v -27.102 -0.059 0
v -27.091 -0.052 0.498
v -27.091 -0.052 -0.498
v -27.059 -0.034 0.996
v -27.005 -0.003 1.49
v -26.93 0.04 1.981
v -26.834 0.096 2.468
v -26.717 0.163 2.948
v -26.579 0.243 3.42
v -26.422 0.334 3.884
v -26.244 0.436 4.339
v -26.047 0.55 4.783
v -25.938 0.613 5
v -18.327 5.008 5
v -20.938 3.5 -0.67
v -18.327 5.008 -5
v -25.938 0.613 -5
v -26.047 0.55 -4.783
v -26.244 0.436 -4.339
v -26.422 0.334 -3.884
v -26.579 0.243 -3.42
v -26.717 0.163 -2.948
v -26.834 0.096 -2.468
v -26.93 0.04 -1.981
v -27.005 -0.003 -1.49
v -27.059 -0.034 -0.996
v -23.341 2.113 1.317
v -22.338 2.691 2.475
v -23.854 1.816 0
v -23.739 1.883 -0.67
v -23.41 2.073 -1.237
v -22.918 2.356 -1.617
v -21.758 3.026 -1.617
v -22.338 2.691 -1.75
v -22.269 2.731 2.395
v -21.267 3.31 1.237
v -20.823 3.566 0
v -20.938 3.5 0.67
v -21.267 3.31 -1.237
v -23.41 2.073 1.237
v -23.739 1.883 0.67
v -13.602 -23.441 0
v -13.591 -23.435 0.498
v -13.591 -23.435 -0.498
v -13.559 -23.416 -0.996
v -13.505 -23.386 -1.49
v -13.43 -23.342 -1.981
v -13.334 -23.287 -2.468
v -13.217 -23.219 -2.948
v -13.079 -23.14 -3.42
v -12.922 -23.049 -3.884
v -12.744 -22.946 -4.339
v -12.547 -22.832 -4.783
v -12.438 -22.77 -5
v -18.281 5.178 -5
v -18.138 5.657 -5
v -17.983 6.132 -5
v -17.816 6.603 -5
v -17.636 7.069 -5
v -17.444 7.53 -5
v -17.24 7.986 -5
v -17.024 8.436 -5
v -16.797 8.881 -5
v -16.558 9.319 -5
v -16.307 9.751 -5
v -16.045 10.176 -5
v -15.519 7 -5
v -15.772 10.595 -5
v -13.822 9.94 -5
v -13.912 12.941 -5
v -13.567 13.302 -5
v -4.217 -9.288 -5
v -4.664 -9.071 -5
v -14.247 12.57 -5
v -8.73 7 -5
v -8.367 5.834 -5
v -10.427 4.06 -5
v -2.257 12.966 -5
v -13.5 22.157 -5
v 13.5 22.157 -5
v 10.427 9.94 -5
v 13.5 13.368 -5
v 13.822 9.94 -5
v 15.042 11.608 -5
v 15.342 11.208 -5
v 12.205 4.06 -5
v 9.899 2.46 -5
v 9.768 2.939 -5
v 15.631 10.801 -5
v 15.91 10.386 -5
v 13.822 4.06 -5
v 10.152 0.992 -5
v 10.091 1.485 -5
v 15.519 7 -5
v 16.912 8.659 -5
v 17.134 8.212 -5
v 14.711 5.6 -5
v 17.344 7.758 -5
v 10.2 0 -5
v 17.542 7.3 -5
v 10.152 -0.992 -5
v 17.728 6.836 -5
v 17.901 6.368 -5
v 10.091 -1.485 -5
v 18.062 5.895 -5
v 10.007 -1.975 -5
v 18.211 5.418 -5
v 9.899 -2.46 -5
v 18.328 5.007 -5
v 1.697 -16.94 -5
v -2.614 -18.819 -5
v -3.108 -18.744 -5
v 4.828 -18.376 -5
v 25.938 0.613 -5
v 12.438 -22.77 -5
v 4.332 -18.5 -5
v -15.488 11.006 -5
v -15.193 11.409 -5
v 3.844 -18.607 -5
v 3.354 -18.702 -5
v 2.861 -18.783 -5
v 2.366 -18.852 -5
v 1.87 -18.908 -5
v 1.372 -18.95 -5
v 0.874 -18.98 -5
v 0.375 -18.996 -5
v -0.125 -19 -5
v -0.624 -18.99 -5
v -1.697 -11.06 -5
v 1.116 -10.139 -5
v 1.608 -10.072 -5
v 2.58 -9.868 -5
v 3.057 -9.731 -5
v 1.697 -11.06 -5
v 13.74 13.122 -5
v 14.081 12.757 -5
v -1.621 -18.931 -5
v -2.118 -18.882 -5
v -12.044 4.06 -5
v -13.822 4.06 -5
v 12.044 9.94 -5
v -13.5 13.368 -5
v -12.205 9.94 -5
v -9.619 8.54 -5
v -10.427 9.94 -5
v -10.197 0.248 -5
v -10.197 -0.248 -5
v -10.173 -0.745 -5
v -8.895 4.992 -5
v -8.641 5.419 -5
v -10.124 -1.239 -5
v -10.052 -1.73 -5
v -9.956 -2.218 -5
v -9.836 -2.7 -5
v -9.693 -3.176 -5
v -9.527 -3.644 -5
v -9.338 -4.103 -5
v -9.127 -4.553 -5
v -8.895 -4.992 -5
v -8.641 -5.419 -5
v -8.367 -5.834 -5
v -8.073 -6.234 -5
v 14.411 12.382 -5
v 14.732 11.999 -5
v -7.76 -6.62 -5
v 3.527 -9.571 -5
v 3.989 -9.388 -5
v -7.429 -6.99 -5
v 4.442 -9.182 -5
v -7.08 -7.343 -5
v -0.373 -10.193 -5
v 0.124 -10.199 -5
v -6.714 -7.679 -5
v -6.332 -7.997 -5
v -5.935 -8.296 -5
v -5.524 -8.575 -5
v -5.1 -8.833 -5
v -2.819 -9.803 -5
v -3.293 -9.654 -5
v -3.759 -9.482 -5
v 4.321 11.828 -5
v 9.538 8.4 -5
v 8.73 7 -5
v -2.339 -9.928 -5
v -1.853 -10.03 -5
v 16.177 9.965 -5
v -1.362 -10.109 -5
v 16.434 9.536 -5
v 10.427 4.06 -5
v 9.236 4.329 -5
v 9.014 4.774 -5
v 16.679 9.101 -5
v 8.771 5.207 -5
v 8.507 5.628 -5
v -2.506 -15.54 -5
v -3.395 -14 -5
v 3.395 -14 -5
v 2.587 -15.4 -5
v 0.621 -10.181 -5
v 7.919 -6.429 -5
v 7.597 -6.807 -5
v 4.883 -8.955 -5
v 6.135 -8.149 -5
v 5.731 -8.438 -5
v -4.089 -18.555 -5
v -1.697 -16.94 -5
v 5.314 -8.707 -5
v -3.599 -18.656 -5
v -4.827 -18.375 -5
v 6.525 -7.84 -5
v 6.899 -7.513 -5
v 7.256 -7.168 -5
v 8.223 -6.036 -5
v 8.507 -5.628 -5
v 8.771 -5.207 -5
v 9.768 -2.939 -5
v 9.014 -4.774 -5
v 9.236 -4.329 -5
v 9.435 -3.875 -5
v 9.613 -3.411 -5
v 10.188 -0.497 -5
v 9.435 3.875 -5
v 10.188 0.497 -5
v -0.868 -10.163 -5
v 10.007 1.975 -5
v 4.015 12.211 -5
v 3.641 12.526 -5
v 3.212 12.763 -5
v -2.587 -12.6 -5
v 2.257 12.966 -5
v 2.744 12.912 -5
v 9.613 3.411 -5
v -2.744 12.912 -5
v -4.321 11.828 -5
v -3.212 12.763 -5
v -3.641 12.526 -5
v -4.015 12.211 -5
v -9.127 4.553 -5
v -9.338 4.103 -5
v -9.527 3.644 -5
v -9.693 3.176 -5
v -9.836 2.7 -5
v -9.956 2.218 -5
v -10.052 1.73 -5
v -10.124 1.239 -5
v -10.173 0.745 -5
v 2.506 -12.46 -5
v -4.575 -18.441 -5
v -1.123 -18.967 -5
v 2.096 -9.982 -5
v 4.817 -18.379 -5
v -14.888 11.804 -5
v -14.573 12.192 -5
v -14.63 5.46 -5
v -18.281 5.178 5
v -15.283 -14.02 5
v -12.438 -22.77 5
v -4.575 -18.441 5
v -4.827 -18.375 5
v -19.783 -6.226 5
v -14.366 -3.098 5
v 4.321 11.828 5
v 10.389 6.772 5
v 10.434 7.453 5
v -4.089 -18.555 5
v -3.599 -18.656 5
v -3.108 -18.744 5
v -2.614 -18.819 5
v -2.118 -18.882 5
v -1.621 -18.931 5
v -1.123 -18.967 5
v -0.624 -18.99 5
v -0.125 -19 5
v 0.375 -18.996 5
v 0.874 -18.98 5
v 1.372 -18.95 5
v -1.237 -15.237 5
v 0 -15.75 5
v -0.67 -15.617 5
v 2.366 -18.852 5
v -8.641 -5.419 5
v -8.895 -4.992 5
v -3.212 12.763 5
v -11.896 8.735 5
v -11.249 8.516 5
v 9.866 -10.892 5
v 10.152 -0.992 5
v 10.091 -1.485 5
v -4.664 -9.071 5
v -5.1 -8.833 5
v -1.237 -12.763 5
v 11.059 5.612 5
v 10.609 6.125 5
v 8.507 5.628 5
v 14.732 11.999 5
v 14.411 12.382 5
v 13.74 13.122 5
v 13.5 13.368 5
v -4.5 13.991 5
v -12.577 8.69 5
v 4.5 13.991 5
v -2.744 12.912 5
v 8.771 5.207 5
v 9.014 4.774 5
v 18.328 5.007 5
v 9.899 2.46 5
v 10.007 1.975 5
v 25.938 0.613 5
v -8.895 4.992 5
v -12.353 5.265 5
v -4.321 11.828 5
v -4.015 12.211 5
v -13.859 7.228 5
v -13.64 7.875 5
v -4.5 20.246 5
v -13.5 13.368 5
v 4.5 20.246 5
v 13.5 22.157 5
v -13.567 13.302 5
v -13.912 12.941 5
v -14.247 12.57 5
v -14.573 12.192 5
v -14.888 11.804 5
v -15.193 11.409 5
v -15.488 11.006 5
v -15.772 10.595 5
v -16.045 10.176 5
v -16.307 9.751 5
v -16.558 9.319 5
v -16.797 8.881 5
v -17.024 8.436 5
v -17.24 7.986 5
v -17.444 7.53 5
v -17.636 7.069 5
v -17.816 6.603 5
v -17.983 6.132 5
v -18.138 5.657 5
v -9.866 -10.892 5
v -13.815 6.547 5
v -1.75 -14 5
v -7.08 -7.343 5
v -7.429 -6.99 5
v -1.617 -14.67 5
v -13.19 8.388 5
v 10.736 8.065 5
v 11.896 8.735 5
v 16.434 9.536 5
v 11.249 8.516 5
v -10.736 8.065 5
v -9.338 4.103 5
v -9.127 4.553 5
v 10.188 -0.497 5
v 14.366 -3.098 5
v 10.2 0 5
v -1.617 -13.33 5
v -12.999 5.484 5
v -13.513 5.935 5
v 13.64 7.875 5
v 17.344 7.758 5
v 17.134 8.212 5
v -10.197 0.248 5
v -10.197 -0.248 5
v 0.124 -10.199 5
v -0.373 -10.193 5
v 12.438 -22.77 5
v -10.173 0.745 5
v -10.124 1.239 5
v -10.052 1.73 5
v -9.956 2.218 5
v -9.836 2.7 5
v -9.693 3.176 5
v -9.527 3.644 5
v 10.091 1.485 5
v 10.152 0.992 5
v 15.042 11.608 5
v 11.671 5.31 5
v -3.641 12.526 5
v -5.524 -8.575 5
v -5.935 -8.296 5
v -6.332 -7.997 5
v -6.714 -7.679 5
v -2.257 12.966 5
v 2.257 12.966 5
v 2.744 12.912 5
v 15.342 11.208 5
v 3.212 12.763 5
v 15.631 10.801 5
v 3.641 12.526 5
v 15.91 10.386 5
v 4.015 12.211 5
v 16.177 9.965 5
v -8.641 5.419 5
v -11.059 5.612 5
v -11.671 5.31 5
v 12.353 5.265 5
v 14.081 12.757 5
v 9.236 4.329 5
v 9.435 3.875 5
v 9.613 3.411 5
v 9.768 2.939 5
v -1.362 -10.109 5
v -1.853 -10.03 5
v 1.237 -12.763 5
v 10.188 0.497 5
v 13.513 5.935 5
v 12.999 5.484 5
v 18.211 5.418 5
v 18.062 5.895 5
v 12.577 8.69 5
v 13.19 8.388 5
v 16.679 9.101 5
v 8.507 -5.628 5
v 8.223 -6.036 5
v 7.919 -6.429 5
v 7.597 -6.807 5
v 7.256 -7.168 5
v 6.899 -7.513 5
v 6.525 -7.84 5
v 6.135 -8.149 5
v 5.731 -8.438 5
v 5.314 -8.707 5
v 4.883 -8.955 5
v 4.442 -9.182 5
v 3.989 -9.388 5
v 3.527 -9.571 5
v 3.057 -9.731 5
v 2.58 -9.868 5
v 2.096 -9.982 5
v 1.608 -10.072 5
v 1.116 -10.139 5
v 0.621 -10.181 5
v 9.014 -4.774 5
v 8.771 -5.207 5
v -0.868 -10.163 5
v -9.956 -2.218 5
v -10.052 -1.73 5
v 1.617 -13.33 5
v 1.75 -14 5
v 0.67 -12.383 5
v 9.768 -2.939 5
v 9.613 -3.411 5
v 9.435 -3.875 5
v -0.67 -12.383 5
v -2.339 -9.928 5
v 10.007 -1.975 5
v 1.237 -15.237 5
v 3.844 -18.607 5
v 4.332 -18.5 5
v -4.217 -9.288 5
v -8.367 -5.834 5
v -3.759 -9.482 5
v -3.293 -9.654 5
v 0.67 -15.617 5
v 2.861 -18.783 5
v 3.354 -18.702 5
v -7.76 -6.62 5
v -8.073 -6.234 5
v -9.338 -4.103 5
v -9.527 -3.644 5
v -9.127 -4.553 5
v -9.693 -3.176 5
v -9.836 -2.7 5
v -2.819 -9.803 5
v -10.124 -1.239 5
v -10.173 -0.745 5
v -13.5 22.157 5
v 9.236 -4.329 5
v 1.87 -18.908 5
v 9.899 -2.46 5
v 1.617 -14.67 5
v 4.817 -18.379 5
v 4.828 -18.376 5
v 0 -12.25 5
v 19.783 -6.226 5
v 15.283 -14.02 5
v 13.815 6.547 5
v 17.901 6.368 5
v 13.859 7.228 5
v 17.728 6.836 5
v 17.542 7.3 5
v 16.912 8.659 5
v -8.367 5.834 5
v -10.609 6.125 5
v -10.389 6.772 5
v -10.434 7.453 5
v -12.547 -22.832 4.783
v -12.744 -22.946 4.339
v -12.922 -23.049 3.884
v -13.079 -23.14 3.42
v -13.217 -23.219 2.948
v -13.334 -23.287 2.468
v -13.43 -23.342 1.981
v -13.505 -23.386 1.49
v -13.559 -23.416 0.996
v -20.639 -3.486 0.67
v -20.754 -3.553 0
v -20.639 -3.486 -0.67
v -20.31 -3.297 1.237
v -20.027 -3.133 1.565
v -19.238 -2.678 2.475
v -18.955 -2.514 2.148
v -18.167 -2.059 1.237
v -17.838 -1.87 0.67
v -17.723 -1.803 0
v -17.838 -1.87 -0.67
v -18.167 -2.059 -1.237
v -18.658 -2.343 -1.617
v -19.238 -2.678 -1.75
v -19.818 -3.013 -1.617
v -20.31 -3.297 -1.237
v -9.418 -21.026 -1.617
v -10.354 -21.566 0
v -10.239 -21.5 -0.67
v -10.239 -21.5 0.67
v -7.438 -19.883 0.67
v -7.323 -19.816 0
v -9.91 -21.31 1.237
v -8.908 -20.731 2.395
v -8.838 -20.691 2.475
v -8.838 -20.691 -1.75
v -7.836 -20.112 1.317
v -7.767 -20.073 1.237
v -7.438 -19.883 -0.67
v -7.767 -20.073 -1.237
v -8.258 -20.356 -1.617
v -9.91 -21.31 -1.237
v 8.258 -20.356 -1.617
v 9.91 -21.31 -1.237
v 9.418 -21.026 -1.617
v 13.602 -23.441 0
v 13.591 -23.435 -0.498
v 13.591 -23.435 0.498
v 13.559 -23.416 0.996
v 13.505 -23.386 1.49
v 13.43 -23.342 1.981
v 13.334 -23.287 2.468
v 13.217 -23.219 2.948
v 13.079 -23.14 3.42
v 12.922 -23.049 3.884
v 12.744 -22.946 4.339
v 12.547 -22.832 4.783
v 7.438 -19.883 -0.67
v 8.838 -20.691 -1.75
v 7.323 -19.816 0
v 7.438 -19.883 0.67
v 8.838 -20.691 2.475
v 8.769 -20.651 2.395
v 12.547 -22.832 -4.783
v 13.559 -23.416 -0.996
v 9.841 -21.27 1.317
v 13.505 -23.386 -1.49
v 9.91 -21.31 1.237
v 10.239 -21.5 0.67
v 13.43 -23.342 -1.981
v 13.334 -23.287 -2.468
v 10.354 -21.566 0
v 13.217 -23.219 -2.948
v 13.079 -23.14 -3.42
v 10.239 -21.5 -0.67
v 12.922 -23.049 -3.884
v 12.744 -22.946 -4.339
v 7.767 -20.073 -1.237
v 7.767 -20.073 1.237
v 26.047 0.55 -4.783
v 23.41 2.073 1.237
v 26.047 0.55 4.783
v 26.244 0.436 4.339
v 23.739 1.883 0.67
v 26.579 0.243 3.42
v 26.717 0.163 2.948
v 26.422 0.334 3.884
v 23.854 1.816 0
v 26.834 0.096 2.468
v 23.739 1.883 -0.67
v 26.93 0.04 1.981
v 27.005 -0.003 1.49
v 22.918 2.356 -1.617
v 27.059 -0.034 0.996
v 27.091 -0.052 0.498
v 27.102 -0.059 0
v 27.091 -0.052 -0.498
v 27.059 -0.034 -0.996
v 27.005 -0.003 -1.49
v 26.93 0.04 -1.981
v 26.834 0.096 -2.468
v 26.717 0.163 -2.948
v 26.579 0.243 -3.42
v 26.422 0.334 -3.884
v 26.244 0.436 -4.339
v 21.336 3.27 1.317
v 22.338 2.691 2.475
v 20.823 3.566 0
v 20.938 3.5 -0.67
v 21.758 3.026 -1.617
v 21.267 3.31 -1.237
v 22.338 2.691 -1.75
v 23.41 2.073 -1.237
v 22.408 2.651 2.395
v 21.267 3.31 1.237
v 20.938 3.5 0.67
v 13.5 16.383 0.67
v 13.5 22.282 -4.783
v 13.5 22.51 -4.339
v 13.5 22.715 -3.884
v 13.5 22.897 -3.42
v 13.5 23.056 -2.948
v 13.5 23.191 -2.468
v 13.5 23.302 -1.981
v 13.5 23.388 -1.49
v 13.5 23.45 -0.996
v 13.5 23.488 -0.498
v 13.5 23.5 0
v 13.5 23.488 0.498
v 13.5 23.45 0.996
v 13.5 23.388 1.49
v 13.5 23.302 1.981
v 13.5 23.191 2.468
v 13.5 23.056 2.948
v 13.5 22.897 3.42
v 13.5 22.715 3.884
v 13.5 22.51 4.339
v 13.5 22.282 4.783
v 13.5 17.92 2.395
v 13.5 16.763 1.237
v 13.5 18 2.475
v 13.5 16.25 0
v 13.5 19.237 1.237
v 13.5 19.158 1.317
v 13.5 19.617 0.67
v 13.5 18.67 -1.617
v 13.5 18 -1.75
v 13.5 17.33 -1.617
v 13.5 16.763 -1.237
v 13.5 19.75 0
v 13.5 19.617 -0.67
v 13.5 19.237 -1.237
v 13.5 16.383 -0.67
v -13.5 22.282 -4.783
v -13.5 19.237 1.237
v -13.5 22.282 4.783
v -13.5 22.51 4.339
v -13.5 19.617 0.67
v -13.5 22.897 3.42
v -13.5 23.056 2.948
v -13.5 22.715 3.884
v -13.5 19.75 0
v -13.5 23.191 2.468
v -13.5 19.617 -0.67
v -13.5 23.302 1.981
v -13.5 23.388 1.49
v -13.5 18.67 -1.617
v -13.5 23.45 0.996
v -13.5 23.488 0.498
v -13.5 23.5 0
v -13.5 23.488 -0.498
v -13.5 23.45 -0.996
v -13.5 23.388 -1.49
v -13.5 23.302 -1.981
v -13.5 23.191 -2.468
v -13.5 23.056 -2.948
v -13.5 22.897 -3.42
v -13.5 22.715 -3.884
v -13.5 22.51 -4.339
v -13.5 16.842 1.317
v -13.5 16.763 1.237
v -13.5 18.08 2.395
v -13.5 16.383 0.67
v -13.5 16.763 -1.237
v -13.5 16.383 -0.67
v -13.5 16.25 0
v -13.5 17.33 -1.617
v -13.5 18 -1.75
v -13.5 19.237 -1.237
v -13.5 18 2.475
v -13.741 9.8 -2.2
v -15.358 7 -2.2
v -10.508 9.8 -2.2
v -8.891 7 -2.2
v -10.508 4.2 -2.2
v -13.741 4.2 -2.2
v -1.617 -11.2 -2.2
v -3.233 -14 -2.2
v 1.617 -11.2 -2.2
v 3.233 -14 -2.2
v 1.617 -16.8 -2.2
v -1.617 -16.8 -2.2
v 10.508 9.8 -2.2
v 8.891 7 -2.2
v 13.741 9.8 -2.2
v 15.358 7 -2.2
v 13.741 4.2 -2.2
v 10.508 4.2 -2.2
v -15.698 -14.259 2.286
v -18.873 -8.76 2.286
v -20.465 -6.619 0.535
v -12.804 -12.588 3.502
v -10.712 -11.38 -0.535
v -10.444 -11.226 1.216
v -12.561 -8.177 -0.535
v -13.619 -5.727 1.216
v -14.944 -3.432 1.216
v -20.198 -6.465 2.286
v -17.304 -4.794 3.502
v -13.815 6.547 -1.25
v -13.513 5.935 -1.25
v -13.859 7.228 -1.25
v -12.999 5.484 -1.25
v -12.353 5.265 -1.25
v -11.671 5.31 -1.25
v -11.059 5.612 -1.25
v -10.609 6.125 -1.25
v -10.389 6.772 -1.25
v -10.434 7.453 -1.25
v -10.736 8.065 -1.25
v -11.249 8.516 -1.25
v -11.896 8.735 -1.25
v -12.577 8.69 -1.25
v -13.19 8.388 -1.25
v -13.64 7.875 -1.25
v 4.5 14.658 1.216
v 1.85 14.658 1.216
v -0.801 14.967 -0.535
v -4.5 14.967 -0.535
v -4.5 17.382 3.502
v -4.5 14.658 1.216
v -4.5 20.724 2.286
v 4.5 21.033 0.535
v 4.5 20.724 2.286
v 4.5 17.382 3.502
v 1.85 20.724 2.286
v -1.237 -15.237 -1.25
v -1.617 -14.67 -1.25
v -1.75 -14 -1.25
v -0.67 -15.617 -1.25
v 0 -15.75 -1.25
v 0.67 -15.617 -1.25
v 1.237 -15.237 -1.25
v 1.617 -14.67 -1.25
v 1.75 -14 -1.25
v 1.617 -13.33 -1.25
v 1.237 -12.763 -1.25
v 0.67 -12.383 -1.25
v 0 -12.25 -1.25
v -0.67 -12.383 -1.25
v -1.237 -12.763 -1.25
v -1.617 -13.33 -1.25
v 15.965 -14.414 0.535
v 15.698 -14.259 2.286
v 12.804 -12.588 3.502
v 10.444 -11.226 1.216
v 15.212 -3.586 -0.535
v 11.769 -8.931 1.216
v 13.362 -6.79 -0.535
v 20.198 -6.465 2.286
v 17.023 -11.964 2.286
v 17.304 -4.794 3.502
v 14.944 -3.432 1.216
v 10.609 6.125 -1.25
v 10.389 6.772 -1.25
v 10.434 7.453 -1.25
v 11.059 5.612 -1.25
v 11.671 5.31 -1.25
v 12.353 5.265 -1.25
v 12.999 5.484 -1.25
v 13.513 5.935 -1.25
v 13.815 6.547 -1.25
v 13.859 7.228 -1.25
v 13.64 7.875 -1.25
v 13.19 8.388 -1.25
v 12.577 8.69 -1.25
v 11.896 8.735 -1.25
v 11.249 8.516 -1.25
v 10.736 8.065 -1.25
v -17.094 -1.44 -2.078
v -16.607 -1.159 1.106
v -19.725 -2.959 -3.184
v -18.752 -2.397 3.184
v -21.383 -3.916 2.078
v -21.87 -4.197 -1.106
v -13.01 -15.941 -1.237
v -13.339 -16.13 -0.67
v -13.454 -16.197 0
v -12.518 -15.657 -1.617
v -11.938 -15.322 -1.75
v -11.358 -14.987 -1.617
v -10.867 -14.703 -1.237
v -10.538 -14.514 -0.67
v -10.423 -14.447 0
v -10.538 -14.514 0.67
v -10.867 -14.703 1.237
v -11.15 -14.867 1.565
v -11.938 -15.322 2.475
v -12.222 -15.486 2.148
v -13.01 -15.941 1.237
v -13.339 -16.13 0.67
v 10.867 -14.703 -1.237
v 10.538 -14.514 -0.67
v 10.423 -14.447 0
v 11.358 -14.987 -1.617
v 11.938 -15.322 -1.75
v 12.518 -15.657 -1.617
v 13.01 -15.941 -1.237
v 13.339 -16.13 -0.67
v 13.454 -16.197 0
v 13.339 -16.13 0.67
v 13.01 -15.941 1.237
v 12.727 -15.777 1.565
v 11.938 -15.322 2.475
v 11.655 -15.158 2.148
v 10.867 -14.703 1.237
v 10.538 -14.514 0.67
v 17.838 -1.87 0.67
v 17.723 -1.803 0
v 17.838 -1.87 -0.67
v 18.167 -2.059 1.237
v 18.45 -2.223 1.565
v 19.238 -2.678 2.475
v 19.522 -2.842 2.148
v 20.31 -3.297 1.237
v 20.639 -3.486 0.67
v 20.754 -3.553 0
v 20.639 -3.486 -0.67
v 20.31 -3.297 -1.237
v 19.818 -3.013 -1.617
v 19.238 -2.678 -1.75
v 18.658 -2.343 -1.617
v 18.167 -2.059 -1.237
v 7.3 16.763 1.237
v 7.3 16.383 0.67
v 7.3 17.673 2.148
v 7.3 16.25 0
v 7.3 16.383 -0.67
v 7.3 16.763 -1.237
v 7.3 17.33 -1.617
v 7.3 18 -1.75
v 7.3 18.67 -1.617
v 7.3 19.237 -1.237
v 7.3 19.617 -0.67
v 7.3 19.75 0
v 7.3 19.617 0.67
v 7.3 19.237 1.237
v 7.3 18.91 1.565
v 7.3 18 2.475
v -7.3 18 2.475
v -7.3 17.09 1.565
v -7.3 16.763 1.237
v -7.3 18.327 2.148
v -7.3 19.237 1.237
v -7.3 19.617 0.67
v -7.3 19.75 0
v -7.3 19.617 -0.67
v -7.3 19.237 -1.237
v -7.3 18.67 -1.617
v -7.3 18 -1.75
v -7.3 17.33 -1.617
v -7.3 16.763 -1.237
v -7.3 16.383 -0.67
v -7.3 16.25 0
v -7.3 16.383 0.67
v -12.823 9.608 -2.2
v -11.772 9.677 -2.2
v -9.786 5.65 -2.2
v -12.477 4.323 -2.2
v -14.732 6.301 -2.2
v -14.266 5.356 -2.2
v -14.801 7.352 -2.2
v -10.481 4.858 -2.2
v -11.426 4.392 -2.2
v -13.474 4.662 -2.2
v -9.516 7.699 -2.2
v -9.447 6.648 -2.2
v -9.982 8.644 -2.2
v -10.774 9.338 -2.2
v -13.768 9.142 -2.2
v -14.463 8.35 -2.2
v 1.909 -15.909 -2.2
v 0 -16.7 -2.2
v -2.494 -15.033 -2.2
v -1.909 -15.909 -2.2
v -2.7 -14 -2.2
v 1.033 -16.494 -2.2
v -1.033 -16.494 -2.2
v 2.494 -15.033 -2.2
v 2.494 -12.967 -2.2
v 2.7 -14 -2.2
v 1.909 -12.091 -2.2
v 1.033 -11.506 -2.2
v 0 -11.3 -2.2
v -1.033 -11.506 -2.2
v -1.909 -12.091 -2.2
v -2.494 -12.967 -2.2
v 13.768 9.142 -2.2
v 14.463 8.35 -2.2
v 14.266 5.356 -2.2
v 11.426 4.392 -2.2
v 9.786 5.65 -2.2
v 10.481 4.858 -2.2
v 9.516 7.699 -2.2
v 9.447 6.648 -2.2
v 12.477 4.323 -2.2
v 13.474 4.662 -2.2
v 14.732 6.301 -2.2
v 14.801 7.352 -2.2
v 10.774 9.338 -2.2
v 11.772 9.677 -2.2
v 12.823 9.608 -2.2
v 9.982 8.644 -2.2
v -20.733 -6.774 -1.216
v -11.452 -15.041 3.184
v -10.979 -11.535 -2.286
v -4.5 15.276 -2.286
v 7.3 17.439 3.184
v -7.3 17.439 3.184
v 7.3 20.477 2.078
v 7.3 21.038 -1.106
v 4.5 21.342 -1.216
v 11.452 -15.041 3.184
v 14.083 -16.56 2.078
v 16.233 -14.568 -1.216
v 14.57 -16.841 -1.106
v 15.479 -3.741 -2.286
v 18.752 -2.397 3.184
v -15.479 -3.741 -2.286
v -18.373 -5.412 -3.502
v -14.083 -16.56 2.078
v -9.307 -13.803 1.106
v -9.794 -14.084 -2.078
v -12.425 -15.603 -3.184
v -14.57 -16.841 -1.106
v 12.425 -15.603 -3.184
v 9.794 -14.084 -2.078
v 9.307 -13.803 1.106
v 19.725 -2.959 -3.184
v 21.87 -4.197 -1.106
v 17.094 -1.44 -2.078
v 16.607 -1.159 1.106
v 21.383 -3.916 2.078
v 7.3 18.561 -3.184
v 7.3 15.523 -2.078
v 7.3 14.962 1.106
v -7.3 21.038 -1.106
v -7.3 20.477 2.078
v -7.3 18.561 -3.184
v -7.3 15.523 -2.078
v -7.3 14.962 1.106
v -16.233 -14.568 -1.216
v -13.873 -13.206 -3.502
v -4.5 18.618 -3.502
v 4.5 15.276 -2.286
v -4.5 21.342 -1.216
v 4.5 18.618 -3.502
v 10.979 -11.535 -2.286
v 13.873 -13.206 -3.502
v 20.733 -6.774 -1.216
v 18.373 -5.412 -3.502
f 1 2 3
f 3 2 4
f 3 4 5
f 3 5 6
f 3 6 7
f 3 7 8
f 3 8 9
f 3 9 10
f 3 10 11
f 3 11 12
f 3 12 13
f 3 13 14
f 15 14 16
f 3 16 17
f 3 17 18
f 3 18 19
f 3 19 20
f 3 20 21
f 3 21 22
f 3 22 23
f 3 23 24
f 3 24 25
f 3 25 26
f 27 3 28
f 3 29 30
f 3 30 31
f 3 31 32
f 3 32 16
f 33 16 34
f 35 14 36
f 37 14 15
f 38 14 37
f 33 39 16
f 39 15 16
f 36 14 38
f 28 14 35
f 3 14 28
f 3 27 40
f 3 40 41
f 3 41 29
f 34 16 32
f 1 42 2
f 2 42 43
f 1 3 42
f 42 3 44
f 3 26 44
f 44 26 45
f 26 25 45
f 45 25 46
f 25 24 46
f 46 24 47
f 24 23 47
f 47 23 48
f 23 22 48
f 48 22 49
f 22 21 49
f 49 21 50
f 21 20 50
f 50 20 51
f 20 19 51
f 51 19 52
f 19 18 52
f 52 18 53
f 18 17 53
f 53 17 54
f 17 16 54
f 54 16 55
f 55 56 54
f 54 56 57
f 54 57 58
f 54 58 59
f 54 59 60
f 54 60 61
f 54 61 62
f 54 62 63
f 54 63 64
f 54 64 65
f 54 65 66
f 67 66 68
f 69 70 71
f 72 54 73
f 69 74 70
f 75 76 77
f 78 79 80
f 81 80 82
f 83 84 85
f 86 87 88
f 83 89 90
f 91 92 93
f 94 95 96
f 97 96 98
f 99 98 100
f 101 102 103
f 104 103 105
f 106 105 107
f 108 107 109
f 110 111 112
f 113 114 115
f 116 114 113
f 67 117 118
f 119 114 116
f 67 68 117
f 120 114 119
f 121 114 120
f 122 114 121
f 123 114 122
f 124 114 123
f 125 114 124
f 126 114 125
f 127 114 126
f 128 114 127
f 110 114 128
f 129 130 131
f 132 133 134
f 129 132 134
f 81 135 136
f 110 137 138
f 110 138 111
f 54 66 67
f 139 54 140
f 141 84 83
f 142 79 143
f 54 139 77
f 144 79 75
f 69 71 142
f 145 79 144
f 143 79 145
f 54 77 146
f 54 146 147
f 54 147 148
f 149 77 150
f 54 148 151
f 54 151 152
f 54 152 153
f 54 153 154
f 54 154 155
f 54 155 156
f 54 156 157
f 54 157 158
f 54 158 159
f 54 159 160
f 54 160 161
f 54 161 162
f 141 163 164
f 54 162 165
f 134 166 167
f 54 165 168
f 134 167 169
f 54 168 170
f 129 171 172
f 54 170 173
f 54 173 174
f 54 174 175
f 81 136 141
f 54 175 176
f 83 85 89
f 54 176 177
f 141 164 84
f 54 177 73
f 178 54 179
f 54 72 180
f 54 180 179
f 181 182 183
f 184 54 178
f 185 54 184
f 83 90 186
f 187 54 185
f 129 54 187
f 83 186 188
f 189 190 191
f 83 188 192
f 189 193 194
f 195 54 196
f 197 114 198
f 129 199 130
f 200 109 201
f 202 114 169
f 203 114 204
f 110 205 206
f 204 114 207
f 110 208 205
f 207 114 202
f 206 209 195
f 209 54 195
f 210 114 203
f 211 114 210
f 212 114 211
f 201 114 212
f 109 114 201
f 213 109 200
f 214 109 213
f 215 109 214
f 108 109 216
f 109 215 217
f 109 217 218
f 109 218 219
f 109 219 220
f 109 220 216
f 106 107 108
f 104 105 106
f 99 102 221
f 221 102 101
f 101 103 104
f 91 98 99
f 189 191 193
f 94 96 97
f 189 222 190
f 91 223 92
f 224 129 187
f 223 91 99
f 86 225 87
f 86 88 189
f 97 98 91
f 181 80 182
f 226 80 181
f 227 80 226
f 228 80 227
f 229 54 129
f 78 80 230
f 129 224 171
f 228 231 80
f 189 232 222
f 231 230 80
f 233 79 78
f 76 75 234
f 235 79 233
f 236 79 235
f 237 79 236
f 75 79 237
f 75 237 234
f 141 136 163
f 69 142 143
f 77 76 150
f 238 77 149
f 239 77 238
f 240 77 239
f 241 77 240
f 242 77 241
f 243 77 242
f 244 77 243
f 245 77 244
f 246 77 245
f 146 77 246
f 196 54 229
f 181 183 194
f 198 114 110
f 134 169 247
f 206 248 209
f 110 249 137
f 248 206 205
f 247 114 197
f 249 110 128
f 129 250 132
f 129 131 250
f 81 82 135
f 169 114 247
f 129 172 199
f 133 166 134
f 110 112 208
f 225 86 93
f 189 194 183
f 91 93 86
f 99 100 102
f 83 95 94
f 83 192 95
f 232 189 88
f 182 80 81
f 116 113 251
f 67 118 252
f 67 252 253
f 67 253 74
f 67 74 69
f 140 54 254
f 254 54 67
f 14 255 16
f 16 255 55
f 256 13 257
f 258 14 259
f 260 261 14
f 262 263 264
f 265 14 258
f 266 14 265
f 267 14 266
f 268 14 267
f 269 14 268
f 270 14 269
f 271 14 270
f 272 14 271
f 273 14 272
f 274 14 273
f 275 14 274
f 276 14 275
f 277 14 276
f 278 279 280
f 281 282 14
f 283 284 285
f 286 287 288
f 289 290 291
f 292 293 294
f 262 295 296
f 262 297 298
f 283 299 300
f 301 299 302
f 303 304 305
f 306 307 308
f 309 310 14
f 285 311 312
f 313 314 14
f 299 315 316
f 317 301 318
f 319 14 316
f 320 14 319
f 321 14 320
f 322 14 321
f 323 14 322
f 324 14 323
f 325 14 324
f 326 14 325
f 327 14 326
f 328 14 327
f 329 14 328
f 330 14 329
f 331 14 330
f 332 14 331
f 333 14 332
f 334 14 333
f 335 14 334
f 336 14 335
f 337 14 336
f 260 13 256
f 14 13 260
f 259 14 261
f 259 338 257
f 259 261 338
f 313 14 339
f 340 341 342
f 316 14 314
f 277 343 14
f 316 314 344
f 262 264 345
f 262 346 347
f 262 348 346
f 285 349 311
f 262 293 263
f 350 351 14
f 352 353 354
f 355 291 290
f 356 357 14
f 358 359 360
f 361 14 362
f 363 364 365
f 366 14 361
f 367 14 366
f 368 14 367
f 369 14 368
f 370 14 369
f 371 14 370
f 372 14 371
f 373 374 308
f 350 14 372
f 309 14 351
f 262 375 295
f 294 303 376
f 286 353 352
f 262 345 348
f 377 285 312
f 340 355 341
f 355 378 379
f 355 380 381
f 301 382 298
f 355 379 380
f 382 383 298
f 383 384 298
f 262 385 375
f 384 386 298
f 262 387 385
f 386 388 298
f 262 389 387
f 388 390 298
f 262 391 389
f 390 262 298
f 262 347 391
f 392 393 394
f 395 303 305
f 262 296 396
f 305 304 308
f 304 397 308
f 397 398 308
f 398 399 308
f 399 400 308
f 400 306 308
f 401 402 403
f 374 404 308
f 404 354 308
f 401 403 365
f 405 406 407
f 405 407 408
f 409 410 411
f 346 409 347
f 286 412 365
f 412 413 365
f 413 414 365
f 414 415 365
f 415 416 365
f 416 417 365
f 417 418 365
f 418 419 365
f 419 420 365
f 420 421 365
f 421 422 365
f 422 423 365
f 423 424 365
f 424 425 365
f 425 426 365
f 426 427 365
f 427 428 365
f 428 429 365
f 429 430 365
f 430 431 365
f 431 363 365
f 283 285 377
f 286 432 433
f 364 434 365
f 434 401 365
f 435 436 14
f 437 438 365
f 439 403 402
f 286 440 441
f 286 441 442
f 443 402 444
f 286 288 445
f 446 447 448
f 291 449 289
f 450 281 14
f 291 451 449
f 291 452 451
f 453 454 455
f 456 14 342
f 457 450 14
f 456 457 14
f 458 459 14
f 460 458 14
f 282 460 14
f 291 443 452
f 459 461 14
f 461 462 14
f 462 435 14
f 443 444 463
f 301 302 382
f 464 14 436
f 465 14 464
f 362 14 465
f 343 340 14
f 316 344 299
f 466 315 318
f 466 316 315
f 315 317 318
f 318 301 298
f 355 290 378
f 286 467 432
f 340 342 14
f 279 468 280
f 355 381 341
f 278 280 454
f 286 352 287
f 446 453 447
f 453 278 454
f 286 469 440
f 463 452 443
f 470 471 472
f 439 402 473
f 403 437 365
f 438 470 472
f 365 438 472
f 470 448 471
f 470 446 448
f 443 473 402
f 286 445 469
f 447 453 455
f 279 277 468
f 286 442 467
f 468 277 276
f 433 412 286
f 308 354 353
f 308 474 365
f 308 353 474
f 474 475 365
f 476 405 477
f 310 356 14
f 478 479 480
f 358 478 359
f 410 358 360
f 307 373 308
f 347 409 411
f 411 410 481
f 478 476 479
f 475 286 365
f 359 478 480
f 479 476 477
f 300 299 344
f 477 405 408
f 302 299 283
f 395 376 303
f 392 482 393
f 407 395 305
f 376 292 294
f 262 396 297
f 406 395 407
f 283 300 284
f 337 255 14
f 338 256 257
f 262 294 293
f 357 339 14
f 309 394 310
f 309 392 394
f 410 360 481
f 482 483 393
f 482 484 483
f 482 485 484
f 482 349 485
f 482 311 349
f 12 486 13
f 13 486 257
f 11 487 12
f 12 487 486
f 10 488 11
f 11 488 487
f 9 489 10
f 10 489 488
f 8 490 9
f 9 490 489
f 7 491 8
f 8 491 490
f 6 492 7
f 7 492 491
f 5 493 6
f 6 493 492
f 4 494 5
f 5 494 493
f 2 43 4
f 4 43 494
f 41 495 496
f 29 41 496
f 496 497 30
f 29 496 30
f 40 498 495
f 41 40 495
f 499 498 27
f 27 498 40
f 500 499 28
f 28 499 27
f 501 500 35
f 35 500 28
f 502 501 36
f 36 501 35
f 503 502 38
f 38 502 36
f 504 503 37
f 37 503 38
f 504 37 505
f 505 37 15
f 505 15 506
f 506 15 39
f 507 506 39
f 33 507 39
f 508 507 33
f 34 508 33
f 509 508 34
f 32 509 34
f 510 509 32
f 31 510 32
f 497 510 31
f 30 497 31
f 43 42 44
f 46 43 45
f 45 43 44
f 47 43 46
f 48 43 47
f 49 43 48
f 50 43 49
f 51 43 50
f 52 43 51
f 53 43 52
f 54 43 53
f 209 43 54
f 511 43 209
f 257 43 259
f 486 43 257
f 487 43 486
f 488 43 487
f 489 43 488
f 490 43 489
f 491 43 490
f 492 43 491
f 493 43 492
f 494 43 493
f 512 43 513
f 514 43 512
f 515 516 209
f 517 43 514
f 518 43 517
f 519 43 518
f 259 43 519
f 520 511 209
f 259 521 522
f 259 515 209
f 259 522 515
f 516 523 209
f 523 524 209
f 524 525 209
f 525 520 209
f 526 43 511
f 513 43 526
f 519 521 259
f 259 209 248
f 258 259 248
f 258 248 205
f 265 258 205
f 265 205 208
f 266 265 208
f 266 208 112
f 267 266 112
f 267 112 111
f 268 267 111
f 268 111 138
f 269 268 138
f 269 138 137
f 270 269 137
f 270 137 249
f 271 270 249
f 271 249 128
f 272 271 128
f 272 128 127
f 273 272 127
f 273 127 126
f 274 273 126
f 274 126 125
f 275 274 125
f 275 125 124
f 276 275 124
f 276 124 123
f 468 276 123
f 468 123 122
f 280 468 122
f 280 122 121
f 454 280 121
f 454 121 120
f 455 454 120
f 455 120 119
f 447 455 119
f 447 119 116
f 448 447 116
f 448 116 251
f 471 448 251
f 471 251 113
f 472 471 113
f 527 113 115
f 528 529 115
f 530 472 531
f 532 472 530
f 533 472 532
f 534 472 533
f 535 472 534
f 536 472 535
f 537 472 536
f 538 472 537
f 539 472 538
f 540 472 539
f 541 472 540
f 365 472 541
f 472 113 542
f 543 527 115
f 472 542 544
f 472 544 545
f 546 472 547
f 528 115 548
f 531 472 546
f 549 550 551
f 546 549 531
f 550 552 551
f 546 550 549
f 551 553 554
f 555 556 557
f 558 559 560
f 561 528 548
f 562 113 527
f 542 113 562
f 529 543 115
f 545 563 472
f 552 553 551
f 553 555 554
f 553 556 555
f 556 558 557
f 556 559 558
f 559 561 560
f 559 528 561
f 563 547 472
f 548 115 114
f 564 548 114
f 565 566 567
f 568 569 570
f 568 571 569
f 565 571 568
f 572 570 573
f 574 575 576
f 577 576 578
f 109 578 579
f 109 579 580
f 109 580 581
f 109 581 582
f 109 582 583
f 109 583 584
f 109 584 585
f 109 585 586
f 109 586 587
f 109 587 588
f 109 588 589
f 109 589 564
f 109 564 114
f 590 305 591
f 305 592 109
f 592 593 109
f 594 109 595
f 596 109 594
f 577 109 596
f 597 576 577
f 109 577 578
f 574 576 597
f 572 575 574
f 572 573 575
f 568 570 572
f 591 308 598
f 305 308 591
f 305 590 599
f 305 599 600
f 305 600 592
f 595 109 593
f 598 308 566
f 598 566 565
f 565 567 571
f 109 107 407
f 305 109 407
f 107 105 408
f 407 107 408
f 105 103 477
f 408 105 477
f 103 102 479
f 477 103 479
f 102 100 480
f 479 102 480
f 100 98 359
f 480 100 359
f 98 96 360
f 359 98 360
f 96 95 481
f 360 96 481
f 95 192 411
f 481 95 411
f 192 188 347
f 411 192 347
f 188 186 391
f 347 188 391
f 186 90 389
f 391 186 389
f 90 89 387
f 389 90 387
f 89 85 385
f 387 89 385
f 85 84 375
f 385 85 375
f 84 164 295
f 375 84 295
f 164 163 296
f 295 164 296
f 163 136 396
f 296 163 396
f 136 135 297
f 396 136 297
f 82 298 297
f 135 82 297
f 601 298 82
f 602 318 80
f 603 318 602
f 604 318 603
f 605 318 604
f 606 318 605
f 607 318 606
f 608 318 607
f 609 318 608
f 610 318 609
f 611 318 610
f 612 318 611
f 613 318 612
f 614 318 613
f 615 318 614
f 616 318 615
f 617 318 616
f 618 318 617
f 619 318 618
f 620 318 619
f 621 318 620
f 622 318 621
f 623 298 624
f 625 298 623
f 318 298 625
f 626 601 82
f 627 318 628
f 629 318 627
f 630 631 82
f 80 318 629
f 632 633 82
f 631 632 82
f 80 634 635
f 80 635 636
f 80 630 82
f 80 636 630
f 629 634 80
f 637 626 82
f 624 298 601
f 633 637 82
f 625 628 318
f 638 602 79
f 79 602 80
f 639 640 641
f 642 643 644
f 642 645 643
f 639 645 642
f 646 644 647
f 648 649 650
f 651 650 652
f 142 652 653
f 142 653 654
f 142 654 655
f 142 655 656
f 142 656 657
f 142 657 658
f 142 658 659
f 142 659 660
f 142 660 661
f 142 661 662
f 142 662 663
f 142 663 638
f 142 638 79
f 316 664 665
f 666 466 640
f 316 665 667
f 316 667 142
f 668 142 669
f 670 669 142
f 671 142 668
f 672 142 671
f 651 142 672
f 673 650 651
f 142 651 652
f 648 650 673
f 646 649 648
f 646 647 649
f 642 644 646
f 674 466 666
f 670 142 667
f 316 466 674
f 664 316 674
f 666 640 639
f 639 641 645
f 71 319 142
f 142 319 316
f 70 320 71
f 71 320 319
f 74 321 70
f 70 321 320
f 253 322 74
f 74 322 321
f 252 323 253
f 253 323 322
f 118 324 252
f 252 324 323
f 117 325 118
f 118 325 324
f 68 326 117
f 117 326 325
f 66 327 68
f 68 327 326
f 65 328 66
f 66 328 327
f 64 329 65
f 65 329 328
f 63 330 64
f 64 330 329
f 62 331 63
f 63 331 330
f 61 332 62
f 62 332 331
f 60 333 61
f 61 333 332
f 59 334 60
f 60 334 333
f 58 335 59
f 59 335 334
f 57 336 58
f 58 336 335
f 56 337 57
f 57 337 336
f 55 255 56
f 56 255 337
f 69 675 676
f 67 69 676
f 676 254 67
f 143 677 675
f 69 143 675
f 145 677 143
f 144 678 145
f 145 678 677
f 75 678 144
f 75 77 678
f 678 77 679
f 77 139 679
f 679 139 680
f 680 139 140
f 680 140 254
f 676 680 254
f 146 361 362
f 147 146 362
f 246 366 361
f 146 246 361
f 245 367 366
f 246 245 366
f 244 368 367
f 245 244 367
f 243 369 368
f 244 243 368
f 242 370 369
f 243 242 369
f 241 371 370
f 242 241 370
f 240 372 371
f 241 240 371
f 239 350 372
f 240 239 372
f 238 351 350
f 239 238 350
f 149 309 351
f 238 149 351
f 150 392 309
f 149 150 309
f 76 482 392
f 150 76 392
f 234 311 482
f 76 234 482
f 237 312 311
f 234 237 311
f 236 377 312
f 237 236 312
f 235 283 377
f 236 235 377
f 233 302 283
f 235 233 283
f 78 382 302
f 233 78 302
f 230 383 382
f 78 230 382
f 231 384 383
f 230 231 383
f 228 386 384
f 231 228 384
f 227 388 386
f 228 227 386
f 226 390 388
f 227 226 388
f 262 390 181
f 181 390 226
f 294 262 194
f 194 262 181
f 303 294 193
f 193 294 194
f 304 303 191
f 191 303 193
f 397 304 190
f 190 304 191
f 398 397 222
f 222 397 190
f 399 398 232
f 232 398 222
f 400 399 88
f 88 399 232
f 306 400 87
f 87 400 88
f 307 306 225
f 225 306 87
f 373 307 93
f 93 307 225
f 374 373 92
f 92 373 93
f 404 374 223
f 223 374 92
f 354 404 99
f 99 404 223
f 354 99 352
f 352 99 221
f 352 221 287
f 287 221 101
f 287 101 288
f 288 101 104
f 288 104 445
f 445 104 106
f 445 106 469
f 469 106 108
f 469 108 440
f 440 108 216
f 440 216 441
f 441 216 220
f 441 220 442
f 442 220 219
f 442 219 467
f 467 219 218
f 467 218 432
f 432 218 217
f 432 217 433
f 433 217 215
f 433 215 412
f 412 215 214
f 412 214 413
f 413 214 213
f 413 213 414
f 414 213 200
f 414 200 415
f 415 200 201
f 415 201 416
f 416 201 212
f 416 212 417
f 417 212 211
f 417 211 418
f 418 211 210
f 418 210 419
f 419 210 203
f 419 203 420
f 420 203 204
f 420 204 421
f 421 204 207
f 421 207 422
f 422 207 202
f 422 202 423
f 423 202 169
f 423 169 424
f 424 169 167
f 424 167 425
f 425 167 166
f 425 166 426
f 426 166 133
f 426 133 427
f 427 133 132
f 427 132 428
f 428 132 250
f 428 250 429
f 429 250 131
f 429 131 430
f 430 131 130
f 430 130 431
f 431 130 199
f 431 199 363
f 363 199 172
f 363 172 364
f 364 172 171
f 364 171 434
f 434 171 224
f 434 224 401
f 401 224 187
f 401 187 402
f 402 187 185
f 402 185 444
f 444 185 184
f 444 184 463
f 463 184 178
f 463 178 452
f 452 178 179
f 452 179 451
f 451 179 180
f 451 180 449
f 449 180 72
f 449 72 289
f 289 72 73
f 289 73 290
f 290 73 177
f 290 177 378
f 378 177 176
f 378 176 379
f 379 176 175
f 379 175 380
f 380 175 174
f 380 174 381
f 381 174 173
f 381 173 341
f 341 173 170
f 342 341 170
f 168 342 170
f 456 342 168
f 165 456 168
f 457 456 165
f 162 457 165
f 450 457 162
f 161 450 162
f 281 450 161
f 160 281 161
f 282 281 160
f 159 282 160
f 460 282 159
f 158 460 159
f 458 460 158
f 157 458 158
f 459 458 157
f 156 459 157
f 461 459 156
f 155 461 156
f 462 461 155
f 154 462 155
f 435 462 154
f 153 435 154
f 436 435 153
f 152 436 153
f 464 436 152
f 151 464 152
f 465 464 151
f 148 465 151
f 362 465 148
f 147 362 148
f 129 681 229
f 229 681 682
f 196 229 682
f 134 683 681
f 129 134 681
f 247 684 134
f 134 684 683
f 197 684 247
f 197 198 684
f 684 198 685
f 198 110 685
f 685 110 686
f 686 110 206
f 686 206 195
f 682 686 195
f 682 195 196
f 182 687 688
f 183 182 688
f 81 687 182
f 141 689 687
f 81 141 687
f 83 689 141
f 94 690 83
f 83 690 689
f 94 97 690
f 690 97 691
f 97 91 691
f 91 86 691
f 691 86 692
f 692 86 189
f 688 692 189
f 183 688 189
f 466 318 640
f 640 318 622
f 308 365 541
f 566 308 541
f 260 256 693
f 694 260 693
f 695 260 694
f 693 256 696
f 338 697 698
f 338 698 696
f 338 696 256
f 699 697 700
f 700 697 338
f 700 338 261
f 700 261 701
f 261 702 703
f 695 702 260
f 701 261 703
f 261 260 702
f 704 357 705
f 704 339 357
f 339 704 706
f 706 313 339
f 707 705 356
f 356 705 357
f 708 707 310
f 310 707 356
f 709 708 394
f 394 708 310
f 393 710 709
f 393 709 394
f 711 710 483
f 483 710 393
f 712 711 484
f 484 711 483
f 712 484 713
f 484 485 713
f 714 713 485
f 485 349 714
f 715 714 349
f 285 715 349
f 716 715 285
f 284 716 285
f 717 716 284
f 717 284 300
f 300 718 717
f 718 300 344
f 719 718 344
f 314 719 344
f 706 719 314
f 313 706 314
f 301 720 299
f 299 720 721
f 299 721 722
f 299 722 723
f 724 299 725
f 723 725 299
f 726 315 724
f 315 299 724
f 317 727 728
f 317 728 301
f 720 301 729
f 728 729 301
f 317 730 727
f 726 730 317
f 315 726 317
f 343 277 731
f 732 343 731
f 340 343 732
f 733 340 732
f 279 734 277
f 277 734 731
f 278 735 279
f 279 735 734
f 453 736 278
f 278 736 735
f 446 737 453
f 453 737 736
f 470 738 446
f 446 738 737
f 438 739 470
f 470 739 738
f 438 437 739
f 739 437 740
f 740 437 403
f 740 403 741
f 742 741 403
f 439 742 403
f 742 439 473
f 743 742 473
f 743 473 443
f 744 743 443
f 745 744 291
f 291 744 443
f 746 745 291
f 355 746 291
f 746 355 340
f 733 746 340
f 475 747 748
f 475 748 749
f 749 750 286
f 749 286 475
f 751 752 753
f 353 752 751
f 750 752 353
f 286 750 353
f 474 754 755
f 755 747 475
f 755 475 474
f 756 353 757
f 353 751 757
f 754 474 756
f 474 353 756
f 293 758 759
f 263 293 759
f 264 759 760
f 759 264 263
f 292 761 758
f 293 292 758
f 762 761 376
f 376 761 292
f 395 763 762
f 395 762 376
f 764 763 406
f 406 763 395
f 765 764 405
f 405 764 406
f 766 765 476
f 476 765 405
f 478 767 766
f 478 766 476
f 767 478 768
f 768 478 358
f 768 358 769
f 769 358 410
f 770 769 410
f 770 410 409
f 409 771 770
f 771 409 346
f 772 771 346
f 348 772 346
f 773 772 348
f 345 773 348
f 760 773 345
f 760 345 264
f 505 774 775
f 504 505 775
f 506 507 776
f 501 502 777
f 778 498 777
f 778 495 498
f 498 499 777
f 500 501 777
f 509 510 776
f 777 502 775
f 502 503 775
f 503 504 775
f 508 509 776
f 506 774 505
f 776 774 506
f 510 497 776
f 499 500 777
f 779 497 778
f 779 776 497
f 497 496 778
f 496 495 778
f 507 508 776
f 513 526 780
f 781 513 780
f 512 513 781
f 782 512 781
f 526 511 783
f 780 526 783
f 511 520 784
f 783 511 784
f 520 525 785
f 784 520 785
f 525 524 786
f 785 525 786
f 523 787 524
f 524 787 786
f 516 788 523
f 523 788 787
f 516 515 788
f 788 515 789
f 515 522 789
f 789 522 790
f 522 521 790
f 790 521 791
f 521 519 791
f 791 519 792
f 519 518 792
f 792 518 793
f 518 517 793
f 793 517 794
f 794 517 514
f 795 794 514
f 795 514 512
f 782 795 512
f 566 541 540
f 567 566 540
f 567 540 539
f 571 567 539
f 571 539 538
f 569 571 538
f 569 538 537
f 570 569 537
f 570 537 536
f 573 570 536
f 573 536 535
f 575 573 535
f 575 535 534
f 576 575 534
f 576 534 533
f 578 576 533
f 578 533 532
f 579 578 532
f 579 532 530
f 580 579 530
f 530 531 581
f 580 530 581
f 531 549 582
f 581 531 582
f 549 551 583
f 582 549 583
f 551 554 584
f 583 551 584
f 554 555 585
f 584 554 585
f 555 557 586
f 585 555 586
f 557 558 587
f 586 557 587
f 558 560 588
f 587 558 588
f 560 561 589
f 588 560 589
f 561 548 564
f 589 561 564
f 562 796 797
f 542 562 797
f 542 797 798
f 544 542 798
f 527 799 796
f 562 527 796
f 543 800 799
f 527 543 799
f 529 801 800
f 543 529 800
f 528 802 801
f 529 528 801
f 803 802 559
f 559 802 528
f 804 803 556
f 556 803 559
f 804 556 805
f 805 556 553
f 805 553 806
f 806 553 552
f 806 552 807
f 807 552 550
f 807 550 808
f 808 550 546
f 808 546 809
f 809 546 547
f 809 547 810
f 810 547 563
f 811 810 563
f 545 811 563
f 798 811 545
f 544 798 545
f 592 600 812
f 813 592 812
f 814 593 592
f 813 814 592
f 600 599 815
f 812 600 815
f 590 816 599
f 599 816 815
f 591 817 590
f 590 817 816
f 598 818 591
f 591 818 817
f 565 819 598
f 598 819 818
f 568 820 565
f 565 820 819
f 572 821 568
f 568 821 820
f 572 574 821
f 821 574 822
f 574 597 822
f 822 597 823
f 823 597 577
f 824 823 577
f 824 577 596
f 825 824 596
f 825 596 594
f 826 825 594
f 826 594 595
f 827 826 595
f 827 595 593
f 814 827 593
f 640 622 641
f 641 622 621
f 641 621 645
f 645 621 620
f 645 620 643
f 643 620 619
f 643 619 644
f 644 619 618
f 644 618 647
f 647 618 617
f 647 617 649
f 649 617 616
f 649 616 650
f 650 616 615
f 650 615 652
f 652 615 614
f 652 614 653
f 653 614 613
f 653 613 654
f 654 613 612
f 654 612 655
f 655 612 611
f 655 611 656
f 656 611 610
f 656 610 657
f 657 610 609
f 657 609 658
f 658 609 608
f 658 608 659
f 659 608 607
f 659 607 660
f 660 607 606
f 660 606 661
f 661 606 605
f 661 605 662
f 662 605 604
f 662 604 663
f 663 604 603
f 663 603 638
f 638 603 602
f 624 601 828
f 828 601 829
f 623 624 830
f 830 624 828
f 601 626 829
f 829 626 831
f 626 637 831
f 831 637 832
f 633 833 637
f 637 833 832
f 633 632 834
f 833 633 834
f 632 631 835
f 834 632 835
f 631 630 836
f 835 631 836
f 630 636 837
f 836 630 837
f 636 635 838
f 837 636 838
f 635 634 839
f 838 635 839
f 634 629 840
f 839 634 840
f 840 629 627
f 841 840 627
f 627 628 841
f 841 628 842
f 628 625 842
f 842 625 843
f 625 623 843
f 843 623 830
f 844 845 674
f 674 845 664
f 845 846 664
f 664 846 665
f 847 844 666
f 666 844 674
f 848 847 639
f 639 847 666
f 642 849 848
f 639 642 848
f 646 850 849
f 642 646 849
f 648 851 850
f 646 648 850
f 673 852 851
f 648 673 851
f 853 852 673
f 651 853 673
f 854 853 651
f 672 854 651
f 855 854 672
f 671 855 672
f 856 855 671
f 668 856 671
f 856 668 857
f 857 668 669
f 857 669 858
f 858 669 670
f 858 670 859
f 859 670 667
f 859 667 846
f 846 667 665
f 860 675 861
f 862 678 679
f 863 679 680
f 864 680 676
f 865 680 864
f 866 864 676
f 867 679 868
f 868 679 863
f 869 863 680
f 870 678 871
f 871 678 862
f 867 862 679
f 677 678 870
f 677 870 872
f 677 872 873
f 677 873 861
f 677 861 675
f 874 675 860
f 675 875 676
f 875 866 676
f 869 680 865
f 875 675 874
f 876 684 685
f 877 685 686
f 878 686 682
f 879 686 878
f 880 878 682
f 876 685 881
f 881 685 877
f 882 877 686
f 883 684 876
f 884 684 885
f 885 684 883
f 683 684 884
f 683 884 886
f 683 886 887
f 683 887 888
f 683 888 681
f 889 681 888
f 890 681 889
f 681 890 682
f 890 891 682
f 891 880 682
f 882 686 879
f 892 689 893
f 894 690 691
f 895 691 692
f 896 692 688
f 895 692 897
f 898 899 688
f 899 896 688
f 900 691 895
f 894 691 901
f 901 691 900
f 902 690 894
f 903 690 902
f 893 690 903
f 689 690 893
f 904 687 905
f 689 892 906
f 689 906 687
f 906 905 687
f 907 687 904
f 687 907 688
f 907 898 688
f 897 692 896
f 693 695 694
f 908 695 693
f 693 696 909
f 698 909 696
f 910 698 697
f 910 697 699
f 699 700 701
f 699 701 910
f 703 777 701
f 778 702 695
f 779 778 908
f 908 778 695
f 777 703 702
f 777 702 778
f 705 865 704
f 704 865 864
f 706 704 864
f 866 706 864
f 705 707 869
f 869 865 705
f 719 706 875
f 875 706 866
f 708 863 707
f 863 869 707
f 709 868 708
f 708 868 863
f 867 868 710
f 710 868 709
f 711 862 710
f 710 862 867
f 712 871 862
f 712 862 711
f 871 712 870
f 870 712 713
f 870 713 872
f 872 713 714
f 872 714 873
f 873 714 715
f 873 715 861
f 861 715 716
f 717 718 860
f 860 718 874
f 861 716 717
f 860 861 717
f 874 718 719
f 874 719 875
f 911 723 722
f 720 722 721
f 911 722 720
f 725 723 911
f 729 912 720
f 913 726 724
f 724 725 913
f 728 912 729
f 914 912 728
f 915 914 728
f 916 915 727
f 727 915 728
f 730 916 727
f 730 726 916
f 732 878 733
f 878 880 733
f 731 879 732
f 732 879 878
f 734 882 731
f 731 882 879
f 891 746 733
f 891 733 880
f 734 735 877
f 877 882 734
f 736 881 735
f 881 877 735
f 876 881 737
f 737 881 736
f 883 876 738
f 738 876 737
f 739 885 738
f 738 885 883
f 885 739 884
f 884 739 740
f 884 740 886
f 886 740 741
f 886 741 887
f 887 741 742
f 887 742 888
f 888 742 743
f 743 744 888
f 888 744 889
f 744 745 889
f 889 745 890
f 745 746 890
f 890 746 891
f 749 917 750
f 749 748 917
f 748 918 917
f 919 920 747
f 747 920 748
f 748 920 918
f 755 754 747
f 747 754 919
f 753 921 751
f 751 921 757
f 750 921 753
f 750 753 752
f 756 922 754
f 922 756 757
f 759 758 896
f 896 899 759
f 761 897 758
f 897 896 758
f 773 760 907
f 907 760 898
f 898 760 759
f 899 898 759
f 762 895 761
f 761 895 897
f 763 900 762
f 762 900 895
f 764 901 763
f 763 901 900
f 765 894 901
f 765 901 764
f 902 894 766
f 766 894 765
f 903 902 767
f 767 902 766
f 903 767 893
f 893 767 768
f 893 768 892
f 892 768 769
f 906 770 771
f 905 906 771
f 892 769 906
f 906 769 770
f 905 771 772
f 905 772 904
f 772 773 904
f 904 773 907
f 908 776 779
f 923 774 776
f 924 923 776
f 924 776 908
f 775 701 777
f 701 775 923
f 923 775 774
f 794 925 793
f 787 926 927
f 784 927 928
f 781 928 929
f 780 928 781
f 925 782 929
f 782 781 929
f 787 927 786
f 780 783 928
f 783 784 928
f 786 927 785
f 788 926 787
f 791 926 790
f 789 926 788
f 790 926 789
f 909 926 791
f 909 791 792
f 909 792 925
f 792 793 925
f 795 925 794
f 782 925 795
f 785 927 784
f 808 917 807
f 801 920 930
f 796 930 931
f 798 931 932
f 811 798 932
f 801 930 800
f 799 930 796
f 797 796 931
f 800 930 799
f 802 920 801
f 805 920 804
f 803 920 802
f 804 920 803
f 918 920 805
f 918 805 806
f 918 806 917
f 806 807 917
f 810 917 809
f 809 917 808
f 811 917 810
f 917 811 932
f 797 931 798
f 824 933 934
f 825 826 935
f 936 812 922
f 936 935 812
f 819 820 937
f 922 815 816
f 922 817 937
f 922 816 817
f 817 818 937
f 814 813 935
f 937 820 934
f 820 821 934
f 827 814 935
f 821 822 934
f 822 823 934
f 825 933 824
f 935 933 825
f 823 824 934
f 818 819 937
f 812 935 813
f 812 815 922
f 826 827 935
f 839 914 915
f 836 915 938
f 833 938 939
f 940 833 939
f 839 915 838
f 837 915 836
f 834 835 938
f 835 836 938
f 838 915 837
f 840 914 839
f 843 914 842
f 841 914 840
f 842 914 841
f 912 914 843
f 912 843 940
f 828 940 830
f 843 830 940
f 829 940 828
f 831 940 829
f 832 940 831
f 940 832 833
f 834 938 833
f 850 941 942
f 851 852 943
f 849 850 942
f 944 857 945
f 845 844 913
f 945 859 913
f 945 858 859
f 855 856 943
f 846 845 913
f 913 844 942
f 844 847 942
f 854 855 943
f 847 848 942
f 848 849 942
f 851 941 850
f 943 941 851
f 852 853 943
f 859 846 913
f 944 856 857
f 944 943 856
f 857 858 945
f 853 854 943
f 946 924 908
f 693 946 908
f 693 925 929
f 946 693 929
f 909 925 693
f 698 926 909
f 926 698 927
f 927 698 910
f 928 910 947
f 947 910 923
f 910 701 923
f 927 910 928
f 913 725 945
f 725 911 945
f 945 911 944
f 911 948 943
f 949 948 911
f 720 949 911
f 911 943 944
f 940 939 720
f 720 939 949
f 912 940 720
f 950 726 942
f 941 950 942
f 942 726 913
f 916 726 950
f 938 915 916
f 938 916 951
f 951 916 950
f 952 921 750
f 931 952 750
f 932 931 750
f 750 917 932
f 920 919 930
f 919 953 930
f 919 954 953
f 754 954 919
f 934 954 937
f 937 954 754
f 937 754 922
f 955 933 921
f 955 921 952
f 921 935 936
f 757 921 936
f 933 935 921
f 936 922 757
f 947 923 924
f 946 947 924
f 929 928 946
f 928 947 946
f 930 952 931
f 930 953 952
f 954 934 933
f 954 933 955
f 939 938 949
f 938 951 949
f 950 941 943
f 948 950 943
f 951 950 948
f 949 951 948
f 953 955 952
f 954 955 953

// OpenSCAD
// file: ../library/udf.scad
//User Defined Features

//"THE BEER-WARE LICENSE" (Revision 42):
//<https://github.com/njprossi> wrote this file. As long as you retain this notice you
//can do whatever you want with this stuff. If we meet some day, and you think
//this stuff is worth it, you can buy me a beer in return.
//Nicolas Rossi

//Currently only for M3

nh=2.8;		//Nut height
ns=5.6;		//Nut 
sd=3.5;		//Screw main dia
shd=5.5;		//Screw head dia
shh=3.5;		//Screw head height

dr=1.1;		//Draft %

$fn=16;

module nut_well(length,position,height,angle,counterbore=false) {
	union() {
		translate([0,0,position+nh/2]) rotate([0,90,90+angle]) hull() {
			rotate([0,90,0]) cylinder(h=nh,r=ns/(sqrt(3)),center=true,$fn=6);
			translate([0,0,height+1]) cube([nh*dr,ns*dr,1],true);
		}
		reprap_hole(sd,length,true);
	}
	if (counterbore==true) counterbore(shh,shd);
}

module nut_well_2(length,distance,height,angle,counterbore=false) {
	union() {
		translate([0,0,-distance/2])reprap_hole(sd,distance+2,false);
		rotate([0,0,angle]) hull() for(a=[0,180]) rotate([0,a,0]) translate([0,0,-distance/2+length-nh]) rotate([0,0,90]) cylinder(h=nh,r1=ns/(sqrt(3)),r2=ns*dr/(sqrt(3)),center=false,$fn=6);
		rotate([0,0,angle]) translate([0,height/2,0]) cube([ns*dr,height,distance-2*length],true);
	}
	if (counterbore==true) counterbore(shh,shd);
}

module nut_cutout(length,angle,counterbore=false){
	reprap_hole(sd,length-1,false);
	translate([0,0,length]) rotate([0,0,90+angle]) cylinder(h=nh*2,r1=ns/(sqrt(3)),r2=ns*dr/(sqrt(3)),center=true,$fn=6);
	if (counterbore==true) counterbore(shh,shd);
}
module nut_cutout_2(length,angle,counterbore=false,overhang=false){
	translate([0,0,length/2-1]) cylinder(h=length+2, r=sd/2, center=true);
	translate([0,0,length]) rotate([0,0,90+angle]) cylinder(h=nh*2, r2=ns*dr/sqrt(3), r1=ns/sqrt(3), center = true,$fn=6);
	if (overhang==true) translate([0,0,length-nh-ns/4+.1]) cylinder(h=ns/2, r2=ns/2, r1=0, center = true);
	if (counterbore==true) counterbore(shh,shd);
}

module counterbore(h,d){
	translate([0,0,-h]) cylinder(h=h*2,r1=(d*dr)/2,r2=d/2,center=true,$fn=16);
}

module reprap_hole(diameter,length,sphere=false) {
		translate([0,0,length/2-1]) hull(){
			cylinder(h=length+2,r=diameter/2,center=true,$fn=16);
			translate([0,0,-length/2-1]) rotate([90,0,135]) cube([diameter/2,length+2,diameter/2],false);
			if (sphere==true) translate([0,0,length/2+1]) sphere(r=diameter/2,$fn=16);
		}
}

/* Test
difference() {
	translate([10,0,0])cube([20,10,10],true);
	nut_well(12,5,5,0);
	nut_cutout(12);
}
*/


translate([-10,0,5]) cube([5,5,10],true);
nut_well(10,6,5,0,true);
translate([10,0,0]) nut_well_2(10,40,5,15,false);
translate([20,0,0]) nut_cutout(10,0,true);
translate([30,0,0]) nut_cutout_2(10,0,true,true);
translate([40,0,0]) reprap_hole(5,10,true);
// file: ../configuration.scad
$fa = 2;
$fs = 0.5;

motor_end_height=44;
idler_end_height=28;
carriage_height=13.8;
platform_thickness=10;
platform_fix_dia=28;
platform_dia=38;

bearing_diameter=16;
bearing_dia_clearence=0.5;
bearing_free_dia_clearence=0.8;

hotend_diameter=16.4;
hotend_groove_dia=12;

// Frames

// Places mounting holes for the controller
// 33 = RAMPS 1.3 (Power outputs: Extruder, Bed, Fan)
// 34 = RAMPS 1.3 (Power outputs: Extruder0, Extruder1, Bed)
// 35 = RAMPS 1.3 (Power outputs: Extruder, Fan, Fan)
// 70 = Megatronics
// 701 = Megatronics 2.0

motherboard=35;

frame_thickness=8;
frame_roundness=20;

// Distance from motor axle to idler axle
// Calculated regarding length of the HTD3M closed belt 
belt_tooth=354;
spacing = round(((belt_tooth*3) - 3.14159 * 24.83) / 2);

rod_length=spacing+motor_end_height/2+idler_end_height/2+2*frame_thickness;
rod_diameter=8;
rod_spacing=60;
//platform_hinge_offset=25;
//carriage_hinge_offset=17;

printbed_diameter=170;	//printable aera
printbed_thickness=4;		// used for rendering and approximating build volume


//corner_radius=12;
//frame_radius=(tower_radius-rod_diameter/2-corner_radius)/cos(30);

ball_link_distance=40;//55;
ball_offset=6.5;
ball_distance=ball_link_distance-2*ball_offset;
ball_angle=25;

// Delta Settings

delta_smooth_rod_offset=139.5;//140 - 152 floor(printbed_diameter/(2*sin(ball_angle))-printbed_diameter/2+delta_effector_offset+delta_carriage_offset)
delta_effector_offset=18;
delta_carriage_offset=18;
delta_diagonal_rod=ceil(max(printbed_diameter/2+delta_smooth_rod_offset-delta_effector_offset-delta_carriage_offset,printbed_diameter/(2*sin(ball_angle))));
//|-> 202
delta_radius=(delta_smooth_rod_offset-delta_effector_offset-delta_carriage_offset);

diagonal_rod_length=delta_diagonal_rod-2*8;//165
diagonal_rod_diameter=3;
diagonal_rod_length_lost=(printbed_diameter/(2*sin(ball_angle)))-(printbed_diameter/2+delta_smooth_rod_offset-delta_effector_offset-delta_carriage_offset);

diagonal_rod_angle=acos(delta_radius/delta_diagonal_rod);

echo_result=true;

carriage_altitude=sqrt(pow(delta_diagonal_rod,2)-pow(delta_radius,2));



if(echo_result) {
	echo("printbed_diameter",printbed_diameter);
	echo("delta_diagonal_rod",delta_diagonal_rod);
	echo("diagonal_rod_length",diagonal_rod_length);
	echo("delta_effector_offset",delta_effector_offset);
	echo("delta_carriage_offset",delta_carriage_offset);
	echo("delta_radius",delta_radius);
	echo("diagonal_rod_angle",diagonal_rod_angle);
	echo("carriage_altitude",carriage_altitude);
	echo("diagonal_rod_length_lost",diagonal_rod_length_lost);
	echo("delta_smooth_rod_offset_optimum",printbed_diameter/(2*sin(ball_angle))-printbed_diameter/2+delta_effector_offset+delta_carriage_offset);
	echo("rod_length",rod_length);
}
// main file
include <../configuration.scad>
use <../library/udf.scad>

//echo_result=false;
$fa = 1;

platform_thickness=10;

//fixing points
n=3;

//big inside hole, fixing point dia, outside dia
d1=hotend_diameter;
d2=platform_fix_dia;
d3=platform_dia;
d4=delta_effector_offset*2-platform_thickness/2-4;
df=3.5;

module new_effector() {
	color("red") difference(){
		union () {
			intersection (){
				union() {
					cylinder(h=platform_thickness+2, r=d3/2, center=true);
					for (a = [1:3]) rotate([0,0,-30+a*120]) {
						translate([(d4)/2,0,0]) rotate([90,0,0]) cylinder(h=ball_distance, r=platform_thickness,center = true);
					}
				}
				cylinder(h = platform_thickness, r = delta_effector_offset*2, center = true);
			}
		}
		union () {

			//Hotend hole
			hull() {
				cylinder(h = platform_thickness+2, r=d1/2+2, center = true);
				for (b = [-12,12]) rotate([0,0,b]) translate([0,d1/2+5/2,0]) cylinder(platform_thickness+2,5/2,5/2,true);
			}

			//Fixing holes
			for (a = [1:n]){
				//rotate([0,180,a*360/n+60]) translate([0,d2/2,0]) cylinder(platform_thickness*2,df/2,df/2,true);
				rotate([0,180,a*360/n+60]) translate([0,d2/2,-platform_thickness/2]) nut_cutout_2(platform_thickness,90,false,true);
			}
			
			//Ball fix points
			for (a = [1:3]) rotate([0,0,60+a*120]) translate([0,-delta_effector_offset,0]) rotate([90,0,90]) nut_well_2(9,ball_distance,carriage_height+1,-10,false);
		}
	}
}

new_effector();
//rotate([0,0,90]) new_effector();
